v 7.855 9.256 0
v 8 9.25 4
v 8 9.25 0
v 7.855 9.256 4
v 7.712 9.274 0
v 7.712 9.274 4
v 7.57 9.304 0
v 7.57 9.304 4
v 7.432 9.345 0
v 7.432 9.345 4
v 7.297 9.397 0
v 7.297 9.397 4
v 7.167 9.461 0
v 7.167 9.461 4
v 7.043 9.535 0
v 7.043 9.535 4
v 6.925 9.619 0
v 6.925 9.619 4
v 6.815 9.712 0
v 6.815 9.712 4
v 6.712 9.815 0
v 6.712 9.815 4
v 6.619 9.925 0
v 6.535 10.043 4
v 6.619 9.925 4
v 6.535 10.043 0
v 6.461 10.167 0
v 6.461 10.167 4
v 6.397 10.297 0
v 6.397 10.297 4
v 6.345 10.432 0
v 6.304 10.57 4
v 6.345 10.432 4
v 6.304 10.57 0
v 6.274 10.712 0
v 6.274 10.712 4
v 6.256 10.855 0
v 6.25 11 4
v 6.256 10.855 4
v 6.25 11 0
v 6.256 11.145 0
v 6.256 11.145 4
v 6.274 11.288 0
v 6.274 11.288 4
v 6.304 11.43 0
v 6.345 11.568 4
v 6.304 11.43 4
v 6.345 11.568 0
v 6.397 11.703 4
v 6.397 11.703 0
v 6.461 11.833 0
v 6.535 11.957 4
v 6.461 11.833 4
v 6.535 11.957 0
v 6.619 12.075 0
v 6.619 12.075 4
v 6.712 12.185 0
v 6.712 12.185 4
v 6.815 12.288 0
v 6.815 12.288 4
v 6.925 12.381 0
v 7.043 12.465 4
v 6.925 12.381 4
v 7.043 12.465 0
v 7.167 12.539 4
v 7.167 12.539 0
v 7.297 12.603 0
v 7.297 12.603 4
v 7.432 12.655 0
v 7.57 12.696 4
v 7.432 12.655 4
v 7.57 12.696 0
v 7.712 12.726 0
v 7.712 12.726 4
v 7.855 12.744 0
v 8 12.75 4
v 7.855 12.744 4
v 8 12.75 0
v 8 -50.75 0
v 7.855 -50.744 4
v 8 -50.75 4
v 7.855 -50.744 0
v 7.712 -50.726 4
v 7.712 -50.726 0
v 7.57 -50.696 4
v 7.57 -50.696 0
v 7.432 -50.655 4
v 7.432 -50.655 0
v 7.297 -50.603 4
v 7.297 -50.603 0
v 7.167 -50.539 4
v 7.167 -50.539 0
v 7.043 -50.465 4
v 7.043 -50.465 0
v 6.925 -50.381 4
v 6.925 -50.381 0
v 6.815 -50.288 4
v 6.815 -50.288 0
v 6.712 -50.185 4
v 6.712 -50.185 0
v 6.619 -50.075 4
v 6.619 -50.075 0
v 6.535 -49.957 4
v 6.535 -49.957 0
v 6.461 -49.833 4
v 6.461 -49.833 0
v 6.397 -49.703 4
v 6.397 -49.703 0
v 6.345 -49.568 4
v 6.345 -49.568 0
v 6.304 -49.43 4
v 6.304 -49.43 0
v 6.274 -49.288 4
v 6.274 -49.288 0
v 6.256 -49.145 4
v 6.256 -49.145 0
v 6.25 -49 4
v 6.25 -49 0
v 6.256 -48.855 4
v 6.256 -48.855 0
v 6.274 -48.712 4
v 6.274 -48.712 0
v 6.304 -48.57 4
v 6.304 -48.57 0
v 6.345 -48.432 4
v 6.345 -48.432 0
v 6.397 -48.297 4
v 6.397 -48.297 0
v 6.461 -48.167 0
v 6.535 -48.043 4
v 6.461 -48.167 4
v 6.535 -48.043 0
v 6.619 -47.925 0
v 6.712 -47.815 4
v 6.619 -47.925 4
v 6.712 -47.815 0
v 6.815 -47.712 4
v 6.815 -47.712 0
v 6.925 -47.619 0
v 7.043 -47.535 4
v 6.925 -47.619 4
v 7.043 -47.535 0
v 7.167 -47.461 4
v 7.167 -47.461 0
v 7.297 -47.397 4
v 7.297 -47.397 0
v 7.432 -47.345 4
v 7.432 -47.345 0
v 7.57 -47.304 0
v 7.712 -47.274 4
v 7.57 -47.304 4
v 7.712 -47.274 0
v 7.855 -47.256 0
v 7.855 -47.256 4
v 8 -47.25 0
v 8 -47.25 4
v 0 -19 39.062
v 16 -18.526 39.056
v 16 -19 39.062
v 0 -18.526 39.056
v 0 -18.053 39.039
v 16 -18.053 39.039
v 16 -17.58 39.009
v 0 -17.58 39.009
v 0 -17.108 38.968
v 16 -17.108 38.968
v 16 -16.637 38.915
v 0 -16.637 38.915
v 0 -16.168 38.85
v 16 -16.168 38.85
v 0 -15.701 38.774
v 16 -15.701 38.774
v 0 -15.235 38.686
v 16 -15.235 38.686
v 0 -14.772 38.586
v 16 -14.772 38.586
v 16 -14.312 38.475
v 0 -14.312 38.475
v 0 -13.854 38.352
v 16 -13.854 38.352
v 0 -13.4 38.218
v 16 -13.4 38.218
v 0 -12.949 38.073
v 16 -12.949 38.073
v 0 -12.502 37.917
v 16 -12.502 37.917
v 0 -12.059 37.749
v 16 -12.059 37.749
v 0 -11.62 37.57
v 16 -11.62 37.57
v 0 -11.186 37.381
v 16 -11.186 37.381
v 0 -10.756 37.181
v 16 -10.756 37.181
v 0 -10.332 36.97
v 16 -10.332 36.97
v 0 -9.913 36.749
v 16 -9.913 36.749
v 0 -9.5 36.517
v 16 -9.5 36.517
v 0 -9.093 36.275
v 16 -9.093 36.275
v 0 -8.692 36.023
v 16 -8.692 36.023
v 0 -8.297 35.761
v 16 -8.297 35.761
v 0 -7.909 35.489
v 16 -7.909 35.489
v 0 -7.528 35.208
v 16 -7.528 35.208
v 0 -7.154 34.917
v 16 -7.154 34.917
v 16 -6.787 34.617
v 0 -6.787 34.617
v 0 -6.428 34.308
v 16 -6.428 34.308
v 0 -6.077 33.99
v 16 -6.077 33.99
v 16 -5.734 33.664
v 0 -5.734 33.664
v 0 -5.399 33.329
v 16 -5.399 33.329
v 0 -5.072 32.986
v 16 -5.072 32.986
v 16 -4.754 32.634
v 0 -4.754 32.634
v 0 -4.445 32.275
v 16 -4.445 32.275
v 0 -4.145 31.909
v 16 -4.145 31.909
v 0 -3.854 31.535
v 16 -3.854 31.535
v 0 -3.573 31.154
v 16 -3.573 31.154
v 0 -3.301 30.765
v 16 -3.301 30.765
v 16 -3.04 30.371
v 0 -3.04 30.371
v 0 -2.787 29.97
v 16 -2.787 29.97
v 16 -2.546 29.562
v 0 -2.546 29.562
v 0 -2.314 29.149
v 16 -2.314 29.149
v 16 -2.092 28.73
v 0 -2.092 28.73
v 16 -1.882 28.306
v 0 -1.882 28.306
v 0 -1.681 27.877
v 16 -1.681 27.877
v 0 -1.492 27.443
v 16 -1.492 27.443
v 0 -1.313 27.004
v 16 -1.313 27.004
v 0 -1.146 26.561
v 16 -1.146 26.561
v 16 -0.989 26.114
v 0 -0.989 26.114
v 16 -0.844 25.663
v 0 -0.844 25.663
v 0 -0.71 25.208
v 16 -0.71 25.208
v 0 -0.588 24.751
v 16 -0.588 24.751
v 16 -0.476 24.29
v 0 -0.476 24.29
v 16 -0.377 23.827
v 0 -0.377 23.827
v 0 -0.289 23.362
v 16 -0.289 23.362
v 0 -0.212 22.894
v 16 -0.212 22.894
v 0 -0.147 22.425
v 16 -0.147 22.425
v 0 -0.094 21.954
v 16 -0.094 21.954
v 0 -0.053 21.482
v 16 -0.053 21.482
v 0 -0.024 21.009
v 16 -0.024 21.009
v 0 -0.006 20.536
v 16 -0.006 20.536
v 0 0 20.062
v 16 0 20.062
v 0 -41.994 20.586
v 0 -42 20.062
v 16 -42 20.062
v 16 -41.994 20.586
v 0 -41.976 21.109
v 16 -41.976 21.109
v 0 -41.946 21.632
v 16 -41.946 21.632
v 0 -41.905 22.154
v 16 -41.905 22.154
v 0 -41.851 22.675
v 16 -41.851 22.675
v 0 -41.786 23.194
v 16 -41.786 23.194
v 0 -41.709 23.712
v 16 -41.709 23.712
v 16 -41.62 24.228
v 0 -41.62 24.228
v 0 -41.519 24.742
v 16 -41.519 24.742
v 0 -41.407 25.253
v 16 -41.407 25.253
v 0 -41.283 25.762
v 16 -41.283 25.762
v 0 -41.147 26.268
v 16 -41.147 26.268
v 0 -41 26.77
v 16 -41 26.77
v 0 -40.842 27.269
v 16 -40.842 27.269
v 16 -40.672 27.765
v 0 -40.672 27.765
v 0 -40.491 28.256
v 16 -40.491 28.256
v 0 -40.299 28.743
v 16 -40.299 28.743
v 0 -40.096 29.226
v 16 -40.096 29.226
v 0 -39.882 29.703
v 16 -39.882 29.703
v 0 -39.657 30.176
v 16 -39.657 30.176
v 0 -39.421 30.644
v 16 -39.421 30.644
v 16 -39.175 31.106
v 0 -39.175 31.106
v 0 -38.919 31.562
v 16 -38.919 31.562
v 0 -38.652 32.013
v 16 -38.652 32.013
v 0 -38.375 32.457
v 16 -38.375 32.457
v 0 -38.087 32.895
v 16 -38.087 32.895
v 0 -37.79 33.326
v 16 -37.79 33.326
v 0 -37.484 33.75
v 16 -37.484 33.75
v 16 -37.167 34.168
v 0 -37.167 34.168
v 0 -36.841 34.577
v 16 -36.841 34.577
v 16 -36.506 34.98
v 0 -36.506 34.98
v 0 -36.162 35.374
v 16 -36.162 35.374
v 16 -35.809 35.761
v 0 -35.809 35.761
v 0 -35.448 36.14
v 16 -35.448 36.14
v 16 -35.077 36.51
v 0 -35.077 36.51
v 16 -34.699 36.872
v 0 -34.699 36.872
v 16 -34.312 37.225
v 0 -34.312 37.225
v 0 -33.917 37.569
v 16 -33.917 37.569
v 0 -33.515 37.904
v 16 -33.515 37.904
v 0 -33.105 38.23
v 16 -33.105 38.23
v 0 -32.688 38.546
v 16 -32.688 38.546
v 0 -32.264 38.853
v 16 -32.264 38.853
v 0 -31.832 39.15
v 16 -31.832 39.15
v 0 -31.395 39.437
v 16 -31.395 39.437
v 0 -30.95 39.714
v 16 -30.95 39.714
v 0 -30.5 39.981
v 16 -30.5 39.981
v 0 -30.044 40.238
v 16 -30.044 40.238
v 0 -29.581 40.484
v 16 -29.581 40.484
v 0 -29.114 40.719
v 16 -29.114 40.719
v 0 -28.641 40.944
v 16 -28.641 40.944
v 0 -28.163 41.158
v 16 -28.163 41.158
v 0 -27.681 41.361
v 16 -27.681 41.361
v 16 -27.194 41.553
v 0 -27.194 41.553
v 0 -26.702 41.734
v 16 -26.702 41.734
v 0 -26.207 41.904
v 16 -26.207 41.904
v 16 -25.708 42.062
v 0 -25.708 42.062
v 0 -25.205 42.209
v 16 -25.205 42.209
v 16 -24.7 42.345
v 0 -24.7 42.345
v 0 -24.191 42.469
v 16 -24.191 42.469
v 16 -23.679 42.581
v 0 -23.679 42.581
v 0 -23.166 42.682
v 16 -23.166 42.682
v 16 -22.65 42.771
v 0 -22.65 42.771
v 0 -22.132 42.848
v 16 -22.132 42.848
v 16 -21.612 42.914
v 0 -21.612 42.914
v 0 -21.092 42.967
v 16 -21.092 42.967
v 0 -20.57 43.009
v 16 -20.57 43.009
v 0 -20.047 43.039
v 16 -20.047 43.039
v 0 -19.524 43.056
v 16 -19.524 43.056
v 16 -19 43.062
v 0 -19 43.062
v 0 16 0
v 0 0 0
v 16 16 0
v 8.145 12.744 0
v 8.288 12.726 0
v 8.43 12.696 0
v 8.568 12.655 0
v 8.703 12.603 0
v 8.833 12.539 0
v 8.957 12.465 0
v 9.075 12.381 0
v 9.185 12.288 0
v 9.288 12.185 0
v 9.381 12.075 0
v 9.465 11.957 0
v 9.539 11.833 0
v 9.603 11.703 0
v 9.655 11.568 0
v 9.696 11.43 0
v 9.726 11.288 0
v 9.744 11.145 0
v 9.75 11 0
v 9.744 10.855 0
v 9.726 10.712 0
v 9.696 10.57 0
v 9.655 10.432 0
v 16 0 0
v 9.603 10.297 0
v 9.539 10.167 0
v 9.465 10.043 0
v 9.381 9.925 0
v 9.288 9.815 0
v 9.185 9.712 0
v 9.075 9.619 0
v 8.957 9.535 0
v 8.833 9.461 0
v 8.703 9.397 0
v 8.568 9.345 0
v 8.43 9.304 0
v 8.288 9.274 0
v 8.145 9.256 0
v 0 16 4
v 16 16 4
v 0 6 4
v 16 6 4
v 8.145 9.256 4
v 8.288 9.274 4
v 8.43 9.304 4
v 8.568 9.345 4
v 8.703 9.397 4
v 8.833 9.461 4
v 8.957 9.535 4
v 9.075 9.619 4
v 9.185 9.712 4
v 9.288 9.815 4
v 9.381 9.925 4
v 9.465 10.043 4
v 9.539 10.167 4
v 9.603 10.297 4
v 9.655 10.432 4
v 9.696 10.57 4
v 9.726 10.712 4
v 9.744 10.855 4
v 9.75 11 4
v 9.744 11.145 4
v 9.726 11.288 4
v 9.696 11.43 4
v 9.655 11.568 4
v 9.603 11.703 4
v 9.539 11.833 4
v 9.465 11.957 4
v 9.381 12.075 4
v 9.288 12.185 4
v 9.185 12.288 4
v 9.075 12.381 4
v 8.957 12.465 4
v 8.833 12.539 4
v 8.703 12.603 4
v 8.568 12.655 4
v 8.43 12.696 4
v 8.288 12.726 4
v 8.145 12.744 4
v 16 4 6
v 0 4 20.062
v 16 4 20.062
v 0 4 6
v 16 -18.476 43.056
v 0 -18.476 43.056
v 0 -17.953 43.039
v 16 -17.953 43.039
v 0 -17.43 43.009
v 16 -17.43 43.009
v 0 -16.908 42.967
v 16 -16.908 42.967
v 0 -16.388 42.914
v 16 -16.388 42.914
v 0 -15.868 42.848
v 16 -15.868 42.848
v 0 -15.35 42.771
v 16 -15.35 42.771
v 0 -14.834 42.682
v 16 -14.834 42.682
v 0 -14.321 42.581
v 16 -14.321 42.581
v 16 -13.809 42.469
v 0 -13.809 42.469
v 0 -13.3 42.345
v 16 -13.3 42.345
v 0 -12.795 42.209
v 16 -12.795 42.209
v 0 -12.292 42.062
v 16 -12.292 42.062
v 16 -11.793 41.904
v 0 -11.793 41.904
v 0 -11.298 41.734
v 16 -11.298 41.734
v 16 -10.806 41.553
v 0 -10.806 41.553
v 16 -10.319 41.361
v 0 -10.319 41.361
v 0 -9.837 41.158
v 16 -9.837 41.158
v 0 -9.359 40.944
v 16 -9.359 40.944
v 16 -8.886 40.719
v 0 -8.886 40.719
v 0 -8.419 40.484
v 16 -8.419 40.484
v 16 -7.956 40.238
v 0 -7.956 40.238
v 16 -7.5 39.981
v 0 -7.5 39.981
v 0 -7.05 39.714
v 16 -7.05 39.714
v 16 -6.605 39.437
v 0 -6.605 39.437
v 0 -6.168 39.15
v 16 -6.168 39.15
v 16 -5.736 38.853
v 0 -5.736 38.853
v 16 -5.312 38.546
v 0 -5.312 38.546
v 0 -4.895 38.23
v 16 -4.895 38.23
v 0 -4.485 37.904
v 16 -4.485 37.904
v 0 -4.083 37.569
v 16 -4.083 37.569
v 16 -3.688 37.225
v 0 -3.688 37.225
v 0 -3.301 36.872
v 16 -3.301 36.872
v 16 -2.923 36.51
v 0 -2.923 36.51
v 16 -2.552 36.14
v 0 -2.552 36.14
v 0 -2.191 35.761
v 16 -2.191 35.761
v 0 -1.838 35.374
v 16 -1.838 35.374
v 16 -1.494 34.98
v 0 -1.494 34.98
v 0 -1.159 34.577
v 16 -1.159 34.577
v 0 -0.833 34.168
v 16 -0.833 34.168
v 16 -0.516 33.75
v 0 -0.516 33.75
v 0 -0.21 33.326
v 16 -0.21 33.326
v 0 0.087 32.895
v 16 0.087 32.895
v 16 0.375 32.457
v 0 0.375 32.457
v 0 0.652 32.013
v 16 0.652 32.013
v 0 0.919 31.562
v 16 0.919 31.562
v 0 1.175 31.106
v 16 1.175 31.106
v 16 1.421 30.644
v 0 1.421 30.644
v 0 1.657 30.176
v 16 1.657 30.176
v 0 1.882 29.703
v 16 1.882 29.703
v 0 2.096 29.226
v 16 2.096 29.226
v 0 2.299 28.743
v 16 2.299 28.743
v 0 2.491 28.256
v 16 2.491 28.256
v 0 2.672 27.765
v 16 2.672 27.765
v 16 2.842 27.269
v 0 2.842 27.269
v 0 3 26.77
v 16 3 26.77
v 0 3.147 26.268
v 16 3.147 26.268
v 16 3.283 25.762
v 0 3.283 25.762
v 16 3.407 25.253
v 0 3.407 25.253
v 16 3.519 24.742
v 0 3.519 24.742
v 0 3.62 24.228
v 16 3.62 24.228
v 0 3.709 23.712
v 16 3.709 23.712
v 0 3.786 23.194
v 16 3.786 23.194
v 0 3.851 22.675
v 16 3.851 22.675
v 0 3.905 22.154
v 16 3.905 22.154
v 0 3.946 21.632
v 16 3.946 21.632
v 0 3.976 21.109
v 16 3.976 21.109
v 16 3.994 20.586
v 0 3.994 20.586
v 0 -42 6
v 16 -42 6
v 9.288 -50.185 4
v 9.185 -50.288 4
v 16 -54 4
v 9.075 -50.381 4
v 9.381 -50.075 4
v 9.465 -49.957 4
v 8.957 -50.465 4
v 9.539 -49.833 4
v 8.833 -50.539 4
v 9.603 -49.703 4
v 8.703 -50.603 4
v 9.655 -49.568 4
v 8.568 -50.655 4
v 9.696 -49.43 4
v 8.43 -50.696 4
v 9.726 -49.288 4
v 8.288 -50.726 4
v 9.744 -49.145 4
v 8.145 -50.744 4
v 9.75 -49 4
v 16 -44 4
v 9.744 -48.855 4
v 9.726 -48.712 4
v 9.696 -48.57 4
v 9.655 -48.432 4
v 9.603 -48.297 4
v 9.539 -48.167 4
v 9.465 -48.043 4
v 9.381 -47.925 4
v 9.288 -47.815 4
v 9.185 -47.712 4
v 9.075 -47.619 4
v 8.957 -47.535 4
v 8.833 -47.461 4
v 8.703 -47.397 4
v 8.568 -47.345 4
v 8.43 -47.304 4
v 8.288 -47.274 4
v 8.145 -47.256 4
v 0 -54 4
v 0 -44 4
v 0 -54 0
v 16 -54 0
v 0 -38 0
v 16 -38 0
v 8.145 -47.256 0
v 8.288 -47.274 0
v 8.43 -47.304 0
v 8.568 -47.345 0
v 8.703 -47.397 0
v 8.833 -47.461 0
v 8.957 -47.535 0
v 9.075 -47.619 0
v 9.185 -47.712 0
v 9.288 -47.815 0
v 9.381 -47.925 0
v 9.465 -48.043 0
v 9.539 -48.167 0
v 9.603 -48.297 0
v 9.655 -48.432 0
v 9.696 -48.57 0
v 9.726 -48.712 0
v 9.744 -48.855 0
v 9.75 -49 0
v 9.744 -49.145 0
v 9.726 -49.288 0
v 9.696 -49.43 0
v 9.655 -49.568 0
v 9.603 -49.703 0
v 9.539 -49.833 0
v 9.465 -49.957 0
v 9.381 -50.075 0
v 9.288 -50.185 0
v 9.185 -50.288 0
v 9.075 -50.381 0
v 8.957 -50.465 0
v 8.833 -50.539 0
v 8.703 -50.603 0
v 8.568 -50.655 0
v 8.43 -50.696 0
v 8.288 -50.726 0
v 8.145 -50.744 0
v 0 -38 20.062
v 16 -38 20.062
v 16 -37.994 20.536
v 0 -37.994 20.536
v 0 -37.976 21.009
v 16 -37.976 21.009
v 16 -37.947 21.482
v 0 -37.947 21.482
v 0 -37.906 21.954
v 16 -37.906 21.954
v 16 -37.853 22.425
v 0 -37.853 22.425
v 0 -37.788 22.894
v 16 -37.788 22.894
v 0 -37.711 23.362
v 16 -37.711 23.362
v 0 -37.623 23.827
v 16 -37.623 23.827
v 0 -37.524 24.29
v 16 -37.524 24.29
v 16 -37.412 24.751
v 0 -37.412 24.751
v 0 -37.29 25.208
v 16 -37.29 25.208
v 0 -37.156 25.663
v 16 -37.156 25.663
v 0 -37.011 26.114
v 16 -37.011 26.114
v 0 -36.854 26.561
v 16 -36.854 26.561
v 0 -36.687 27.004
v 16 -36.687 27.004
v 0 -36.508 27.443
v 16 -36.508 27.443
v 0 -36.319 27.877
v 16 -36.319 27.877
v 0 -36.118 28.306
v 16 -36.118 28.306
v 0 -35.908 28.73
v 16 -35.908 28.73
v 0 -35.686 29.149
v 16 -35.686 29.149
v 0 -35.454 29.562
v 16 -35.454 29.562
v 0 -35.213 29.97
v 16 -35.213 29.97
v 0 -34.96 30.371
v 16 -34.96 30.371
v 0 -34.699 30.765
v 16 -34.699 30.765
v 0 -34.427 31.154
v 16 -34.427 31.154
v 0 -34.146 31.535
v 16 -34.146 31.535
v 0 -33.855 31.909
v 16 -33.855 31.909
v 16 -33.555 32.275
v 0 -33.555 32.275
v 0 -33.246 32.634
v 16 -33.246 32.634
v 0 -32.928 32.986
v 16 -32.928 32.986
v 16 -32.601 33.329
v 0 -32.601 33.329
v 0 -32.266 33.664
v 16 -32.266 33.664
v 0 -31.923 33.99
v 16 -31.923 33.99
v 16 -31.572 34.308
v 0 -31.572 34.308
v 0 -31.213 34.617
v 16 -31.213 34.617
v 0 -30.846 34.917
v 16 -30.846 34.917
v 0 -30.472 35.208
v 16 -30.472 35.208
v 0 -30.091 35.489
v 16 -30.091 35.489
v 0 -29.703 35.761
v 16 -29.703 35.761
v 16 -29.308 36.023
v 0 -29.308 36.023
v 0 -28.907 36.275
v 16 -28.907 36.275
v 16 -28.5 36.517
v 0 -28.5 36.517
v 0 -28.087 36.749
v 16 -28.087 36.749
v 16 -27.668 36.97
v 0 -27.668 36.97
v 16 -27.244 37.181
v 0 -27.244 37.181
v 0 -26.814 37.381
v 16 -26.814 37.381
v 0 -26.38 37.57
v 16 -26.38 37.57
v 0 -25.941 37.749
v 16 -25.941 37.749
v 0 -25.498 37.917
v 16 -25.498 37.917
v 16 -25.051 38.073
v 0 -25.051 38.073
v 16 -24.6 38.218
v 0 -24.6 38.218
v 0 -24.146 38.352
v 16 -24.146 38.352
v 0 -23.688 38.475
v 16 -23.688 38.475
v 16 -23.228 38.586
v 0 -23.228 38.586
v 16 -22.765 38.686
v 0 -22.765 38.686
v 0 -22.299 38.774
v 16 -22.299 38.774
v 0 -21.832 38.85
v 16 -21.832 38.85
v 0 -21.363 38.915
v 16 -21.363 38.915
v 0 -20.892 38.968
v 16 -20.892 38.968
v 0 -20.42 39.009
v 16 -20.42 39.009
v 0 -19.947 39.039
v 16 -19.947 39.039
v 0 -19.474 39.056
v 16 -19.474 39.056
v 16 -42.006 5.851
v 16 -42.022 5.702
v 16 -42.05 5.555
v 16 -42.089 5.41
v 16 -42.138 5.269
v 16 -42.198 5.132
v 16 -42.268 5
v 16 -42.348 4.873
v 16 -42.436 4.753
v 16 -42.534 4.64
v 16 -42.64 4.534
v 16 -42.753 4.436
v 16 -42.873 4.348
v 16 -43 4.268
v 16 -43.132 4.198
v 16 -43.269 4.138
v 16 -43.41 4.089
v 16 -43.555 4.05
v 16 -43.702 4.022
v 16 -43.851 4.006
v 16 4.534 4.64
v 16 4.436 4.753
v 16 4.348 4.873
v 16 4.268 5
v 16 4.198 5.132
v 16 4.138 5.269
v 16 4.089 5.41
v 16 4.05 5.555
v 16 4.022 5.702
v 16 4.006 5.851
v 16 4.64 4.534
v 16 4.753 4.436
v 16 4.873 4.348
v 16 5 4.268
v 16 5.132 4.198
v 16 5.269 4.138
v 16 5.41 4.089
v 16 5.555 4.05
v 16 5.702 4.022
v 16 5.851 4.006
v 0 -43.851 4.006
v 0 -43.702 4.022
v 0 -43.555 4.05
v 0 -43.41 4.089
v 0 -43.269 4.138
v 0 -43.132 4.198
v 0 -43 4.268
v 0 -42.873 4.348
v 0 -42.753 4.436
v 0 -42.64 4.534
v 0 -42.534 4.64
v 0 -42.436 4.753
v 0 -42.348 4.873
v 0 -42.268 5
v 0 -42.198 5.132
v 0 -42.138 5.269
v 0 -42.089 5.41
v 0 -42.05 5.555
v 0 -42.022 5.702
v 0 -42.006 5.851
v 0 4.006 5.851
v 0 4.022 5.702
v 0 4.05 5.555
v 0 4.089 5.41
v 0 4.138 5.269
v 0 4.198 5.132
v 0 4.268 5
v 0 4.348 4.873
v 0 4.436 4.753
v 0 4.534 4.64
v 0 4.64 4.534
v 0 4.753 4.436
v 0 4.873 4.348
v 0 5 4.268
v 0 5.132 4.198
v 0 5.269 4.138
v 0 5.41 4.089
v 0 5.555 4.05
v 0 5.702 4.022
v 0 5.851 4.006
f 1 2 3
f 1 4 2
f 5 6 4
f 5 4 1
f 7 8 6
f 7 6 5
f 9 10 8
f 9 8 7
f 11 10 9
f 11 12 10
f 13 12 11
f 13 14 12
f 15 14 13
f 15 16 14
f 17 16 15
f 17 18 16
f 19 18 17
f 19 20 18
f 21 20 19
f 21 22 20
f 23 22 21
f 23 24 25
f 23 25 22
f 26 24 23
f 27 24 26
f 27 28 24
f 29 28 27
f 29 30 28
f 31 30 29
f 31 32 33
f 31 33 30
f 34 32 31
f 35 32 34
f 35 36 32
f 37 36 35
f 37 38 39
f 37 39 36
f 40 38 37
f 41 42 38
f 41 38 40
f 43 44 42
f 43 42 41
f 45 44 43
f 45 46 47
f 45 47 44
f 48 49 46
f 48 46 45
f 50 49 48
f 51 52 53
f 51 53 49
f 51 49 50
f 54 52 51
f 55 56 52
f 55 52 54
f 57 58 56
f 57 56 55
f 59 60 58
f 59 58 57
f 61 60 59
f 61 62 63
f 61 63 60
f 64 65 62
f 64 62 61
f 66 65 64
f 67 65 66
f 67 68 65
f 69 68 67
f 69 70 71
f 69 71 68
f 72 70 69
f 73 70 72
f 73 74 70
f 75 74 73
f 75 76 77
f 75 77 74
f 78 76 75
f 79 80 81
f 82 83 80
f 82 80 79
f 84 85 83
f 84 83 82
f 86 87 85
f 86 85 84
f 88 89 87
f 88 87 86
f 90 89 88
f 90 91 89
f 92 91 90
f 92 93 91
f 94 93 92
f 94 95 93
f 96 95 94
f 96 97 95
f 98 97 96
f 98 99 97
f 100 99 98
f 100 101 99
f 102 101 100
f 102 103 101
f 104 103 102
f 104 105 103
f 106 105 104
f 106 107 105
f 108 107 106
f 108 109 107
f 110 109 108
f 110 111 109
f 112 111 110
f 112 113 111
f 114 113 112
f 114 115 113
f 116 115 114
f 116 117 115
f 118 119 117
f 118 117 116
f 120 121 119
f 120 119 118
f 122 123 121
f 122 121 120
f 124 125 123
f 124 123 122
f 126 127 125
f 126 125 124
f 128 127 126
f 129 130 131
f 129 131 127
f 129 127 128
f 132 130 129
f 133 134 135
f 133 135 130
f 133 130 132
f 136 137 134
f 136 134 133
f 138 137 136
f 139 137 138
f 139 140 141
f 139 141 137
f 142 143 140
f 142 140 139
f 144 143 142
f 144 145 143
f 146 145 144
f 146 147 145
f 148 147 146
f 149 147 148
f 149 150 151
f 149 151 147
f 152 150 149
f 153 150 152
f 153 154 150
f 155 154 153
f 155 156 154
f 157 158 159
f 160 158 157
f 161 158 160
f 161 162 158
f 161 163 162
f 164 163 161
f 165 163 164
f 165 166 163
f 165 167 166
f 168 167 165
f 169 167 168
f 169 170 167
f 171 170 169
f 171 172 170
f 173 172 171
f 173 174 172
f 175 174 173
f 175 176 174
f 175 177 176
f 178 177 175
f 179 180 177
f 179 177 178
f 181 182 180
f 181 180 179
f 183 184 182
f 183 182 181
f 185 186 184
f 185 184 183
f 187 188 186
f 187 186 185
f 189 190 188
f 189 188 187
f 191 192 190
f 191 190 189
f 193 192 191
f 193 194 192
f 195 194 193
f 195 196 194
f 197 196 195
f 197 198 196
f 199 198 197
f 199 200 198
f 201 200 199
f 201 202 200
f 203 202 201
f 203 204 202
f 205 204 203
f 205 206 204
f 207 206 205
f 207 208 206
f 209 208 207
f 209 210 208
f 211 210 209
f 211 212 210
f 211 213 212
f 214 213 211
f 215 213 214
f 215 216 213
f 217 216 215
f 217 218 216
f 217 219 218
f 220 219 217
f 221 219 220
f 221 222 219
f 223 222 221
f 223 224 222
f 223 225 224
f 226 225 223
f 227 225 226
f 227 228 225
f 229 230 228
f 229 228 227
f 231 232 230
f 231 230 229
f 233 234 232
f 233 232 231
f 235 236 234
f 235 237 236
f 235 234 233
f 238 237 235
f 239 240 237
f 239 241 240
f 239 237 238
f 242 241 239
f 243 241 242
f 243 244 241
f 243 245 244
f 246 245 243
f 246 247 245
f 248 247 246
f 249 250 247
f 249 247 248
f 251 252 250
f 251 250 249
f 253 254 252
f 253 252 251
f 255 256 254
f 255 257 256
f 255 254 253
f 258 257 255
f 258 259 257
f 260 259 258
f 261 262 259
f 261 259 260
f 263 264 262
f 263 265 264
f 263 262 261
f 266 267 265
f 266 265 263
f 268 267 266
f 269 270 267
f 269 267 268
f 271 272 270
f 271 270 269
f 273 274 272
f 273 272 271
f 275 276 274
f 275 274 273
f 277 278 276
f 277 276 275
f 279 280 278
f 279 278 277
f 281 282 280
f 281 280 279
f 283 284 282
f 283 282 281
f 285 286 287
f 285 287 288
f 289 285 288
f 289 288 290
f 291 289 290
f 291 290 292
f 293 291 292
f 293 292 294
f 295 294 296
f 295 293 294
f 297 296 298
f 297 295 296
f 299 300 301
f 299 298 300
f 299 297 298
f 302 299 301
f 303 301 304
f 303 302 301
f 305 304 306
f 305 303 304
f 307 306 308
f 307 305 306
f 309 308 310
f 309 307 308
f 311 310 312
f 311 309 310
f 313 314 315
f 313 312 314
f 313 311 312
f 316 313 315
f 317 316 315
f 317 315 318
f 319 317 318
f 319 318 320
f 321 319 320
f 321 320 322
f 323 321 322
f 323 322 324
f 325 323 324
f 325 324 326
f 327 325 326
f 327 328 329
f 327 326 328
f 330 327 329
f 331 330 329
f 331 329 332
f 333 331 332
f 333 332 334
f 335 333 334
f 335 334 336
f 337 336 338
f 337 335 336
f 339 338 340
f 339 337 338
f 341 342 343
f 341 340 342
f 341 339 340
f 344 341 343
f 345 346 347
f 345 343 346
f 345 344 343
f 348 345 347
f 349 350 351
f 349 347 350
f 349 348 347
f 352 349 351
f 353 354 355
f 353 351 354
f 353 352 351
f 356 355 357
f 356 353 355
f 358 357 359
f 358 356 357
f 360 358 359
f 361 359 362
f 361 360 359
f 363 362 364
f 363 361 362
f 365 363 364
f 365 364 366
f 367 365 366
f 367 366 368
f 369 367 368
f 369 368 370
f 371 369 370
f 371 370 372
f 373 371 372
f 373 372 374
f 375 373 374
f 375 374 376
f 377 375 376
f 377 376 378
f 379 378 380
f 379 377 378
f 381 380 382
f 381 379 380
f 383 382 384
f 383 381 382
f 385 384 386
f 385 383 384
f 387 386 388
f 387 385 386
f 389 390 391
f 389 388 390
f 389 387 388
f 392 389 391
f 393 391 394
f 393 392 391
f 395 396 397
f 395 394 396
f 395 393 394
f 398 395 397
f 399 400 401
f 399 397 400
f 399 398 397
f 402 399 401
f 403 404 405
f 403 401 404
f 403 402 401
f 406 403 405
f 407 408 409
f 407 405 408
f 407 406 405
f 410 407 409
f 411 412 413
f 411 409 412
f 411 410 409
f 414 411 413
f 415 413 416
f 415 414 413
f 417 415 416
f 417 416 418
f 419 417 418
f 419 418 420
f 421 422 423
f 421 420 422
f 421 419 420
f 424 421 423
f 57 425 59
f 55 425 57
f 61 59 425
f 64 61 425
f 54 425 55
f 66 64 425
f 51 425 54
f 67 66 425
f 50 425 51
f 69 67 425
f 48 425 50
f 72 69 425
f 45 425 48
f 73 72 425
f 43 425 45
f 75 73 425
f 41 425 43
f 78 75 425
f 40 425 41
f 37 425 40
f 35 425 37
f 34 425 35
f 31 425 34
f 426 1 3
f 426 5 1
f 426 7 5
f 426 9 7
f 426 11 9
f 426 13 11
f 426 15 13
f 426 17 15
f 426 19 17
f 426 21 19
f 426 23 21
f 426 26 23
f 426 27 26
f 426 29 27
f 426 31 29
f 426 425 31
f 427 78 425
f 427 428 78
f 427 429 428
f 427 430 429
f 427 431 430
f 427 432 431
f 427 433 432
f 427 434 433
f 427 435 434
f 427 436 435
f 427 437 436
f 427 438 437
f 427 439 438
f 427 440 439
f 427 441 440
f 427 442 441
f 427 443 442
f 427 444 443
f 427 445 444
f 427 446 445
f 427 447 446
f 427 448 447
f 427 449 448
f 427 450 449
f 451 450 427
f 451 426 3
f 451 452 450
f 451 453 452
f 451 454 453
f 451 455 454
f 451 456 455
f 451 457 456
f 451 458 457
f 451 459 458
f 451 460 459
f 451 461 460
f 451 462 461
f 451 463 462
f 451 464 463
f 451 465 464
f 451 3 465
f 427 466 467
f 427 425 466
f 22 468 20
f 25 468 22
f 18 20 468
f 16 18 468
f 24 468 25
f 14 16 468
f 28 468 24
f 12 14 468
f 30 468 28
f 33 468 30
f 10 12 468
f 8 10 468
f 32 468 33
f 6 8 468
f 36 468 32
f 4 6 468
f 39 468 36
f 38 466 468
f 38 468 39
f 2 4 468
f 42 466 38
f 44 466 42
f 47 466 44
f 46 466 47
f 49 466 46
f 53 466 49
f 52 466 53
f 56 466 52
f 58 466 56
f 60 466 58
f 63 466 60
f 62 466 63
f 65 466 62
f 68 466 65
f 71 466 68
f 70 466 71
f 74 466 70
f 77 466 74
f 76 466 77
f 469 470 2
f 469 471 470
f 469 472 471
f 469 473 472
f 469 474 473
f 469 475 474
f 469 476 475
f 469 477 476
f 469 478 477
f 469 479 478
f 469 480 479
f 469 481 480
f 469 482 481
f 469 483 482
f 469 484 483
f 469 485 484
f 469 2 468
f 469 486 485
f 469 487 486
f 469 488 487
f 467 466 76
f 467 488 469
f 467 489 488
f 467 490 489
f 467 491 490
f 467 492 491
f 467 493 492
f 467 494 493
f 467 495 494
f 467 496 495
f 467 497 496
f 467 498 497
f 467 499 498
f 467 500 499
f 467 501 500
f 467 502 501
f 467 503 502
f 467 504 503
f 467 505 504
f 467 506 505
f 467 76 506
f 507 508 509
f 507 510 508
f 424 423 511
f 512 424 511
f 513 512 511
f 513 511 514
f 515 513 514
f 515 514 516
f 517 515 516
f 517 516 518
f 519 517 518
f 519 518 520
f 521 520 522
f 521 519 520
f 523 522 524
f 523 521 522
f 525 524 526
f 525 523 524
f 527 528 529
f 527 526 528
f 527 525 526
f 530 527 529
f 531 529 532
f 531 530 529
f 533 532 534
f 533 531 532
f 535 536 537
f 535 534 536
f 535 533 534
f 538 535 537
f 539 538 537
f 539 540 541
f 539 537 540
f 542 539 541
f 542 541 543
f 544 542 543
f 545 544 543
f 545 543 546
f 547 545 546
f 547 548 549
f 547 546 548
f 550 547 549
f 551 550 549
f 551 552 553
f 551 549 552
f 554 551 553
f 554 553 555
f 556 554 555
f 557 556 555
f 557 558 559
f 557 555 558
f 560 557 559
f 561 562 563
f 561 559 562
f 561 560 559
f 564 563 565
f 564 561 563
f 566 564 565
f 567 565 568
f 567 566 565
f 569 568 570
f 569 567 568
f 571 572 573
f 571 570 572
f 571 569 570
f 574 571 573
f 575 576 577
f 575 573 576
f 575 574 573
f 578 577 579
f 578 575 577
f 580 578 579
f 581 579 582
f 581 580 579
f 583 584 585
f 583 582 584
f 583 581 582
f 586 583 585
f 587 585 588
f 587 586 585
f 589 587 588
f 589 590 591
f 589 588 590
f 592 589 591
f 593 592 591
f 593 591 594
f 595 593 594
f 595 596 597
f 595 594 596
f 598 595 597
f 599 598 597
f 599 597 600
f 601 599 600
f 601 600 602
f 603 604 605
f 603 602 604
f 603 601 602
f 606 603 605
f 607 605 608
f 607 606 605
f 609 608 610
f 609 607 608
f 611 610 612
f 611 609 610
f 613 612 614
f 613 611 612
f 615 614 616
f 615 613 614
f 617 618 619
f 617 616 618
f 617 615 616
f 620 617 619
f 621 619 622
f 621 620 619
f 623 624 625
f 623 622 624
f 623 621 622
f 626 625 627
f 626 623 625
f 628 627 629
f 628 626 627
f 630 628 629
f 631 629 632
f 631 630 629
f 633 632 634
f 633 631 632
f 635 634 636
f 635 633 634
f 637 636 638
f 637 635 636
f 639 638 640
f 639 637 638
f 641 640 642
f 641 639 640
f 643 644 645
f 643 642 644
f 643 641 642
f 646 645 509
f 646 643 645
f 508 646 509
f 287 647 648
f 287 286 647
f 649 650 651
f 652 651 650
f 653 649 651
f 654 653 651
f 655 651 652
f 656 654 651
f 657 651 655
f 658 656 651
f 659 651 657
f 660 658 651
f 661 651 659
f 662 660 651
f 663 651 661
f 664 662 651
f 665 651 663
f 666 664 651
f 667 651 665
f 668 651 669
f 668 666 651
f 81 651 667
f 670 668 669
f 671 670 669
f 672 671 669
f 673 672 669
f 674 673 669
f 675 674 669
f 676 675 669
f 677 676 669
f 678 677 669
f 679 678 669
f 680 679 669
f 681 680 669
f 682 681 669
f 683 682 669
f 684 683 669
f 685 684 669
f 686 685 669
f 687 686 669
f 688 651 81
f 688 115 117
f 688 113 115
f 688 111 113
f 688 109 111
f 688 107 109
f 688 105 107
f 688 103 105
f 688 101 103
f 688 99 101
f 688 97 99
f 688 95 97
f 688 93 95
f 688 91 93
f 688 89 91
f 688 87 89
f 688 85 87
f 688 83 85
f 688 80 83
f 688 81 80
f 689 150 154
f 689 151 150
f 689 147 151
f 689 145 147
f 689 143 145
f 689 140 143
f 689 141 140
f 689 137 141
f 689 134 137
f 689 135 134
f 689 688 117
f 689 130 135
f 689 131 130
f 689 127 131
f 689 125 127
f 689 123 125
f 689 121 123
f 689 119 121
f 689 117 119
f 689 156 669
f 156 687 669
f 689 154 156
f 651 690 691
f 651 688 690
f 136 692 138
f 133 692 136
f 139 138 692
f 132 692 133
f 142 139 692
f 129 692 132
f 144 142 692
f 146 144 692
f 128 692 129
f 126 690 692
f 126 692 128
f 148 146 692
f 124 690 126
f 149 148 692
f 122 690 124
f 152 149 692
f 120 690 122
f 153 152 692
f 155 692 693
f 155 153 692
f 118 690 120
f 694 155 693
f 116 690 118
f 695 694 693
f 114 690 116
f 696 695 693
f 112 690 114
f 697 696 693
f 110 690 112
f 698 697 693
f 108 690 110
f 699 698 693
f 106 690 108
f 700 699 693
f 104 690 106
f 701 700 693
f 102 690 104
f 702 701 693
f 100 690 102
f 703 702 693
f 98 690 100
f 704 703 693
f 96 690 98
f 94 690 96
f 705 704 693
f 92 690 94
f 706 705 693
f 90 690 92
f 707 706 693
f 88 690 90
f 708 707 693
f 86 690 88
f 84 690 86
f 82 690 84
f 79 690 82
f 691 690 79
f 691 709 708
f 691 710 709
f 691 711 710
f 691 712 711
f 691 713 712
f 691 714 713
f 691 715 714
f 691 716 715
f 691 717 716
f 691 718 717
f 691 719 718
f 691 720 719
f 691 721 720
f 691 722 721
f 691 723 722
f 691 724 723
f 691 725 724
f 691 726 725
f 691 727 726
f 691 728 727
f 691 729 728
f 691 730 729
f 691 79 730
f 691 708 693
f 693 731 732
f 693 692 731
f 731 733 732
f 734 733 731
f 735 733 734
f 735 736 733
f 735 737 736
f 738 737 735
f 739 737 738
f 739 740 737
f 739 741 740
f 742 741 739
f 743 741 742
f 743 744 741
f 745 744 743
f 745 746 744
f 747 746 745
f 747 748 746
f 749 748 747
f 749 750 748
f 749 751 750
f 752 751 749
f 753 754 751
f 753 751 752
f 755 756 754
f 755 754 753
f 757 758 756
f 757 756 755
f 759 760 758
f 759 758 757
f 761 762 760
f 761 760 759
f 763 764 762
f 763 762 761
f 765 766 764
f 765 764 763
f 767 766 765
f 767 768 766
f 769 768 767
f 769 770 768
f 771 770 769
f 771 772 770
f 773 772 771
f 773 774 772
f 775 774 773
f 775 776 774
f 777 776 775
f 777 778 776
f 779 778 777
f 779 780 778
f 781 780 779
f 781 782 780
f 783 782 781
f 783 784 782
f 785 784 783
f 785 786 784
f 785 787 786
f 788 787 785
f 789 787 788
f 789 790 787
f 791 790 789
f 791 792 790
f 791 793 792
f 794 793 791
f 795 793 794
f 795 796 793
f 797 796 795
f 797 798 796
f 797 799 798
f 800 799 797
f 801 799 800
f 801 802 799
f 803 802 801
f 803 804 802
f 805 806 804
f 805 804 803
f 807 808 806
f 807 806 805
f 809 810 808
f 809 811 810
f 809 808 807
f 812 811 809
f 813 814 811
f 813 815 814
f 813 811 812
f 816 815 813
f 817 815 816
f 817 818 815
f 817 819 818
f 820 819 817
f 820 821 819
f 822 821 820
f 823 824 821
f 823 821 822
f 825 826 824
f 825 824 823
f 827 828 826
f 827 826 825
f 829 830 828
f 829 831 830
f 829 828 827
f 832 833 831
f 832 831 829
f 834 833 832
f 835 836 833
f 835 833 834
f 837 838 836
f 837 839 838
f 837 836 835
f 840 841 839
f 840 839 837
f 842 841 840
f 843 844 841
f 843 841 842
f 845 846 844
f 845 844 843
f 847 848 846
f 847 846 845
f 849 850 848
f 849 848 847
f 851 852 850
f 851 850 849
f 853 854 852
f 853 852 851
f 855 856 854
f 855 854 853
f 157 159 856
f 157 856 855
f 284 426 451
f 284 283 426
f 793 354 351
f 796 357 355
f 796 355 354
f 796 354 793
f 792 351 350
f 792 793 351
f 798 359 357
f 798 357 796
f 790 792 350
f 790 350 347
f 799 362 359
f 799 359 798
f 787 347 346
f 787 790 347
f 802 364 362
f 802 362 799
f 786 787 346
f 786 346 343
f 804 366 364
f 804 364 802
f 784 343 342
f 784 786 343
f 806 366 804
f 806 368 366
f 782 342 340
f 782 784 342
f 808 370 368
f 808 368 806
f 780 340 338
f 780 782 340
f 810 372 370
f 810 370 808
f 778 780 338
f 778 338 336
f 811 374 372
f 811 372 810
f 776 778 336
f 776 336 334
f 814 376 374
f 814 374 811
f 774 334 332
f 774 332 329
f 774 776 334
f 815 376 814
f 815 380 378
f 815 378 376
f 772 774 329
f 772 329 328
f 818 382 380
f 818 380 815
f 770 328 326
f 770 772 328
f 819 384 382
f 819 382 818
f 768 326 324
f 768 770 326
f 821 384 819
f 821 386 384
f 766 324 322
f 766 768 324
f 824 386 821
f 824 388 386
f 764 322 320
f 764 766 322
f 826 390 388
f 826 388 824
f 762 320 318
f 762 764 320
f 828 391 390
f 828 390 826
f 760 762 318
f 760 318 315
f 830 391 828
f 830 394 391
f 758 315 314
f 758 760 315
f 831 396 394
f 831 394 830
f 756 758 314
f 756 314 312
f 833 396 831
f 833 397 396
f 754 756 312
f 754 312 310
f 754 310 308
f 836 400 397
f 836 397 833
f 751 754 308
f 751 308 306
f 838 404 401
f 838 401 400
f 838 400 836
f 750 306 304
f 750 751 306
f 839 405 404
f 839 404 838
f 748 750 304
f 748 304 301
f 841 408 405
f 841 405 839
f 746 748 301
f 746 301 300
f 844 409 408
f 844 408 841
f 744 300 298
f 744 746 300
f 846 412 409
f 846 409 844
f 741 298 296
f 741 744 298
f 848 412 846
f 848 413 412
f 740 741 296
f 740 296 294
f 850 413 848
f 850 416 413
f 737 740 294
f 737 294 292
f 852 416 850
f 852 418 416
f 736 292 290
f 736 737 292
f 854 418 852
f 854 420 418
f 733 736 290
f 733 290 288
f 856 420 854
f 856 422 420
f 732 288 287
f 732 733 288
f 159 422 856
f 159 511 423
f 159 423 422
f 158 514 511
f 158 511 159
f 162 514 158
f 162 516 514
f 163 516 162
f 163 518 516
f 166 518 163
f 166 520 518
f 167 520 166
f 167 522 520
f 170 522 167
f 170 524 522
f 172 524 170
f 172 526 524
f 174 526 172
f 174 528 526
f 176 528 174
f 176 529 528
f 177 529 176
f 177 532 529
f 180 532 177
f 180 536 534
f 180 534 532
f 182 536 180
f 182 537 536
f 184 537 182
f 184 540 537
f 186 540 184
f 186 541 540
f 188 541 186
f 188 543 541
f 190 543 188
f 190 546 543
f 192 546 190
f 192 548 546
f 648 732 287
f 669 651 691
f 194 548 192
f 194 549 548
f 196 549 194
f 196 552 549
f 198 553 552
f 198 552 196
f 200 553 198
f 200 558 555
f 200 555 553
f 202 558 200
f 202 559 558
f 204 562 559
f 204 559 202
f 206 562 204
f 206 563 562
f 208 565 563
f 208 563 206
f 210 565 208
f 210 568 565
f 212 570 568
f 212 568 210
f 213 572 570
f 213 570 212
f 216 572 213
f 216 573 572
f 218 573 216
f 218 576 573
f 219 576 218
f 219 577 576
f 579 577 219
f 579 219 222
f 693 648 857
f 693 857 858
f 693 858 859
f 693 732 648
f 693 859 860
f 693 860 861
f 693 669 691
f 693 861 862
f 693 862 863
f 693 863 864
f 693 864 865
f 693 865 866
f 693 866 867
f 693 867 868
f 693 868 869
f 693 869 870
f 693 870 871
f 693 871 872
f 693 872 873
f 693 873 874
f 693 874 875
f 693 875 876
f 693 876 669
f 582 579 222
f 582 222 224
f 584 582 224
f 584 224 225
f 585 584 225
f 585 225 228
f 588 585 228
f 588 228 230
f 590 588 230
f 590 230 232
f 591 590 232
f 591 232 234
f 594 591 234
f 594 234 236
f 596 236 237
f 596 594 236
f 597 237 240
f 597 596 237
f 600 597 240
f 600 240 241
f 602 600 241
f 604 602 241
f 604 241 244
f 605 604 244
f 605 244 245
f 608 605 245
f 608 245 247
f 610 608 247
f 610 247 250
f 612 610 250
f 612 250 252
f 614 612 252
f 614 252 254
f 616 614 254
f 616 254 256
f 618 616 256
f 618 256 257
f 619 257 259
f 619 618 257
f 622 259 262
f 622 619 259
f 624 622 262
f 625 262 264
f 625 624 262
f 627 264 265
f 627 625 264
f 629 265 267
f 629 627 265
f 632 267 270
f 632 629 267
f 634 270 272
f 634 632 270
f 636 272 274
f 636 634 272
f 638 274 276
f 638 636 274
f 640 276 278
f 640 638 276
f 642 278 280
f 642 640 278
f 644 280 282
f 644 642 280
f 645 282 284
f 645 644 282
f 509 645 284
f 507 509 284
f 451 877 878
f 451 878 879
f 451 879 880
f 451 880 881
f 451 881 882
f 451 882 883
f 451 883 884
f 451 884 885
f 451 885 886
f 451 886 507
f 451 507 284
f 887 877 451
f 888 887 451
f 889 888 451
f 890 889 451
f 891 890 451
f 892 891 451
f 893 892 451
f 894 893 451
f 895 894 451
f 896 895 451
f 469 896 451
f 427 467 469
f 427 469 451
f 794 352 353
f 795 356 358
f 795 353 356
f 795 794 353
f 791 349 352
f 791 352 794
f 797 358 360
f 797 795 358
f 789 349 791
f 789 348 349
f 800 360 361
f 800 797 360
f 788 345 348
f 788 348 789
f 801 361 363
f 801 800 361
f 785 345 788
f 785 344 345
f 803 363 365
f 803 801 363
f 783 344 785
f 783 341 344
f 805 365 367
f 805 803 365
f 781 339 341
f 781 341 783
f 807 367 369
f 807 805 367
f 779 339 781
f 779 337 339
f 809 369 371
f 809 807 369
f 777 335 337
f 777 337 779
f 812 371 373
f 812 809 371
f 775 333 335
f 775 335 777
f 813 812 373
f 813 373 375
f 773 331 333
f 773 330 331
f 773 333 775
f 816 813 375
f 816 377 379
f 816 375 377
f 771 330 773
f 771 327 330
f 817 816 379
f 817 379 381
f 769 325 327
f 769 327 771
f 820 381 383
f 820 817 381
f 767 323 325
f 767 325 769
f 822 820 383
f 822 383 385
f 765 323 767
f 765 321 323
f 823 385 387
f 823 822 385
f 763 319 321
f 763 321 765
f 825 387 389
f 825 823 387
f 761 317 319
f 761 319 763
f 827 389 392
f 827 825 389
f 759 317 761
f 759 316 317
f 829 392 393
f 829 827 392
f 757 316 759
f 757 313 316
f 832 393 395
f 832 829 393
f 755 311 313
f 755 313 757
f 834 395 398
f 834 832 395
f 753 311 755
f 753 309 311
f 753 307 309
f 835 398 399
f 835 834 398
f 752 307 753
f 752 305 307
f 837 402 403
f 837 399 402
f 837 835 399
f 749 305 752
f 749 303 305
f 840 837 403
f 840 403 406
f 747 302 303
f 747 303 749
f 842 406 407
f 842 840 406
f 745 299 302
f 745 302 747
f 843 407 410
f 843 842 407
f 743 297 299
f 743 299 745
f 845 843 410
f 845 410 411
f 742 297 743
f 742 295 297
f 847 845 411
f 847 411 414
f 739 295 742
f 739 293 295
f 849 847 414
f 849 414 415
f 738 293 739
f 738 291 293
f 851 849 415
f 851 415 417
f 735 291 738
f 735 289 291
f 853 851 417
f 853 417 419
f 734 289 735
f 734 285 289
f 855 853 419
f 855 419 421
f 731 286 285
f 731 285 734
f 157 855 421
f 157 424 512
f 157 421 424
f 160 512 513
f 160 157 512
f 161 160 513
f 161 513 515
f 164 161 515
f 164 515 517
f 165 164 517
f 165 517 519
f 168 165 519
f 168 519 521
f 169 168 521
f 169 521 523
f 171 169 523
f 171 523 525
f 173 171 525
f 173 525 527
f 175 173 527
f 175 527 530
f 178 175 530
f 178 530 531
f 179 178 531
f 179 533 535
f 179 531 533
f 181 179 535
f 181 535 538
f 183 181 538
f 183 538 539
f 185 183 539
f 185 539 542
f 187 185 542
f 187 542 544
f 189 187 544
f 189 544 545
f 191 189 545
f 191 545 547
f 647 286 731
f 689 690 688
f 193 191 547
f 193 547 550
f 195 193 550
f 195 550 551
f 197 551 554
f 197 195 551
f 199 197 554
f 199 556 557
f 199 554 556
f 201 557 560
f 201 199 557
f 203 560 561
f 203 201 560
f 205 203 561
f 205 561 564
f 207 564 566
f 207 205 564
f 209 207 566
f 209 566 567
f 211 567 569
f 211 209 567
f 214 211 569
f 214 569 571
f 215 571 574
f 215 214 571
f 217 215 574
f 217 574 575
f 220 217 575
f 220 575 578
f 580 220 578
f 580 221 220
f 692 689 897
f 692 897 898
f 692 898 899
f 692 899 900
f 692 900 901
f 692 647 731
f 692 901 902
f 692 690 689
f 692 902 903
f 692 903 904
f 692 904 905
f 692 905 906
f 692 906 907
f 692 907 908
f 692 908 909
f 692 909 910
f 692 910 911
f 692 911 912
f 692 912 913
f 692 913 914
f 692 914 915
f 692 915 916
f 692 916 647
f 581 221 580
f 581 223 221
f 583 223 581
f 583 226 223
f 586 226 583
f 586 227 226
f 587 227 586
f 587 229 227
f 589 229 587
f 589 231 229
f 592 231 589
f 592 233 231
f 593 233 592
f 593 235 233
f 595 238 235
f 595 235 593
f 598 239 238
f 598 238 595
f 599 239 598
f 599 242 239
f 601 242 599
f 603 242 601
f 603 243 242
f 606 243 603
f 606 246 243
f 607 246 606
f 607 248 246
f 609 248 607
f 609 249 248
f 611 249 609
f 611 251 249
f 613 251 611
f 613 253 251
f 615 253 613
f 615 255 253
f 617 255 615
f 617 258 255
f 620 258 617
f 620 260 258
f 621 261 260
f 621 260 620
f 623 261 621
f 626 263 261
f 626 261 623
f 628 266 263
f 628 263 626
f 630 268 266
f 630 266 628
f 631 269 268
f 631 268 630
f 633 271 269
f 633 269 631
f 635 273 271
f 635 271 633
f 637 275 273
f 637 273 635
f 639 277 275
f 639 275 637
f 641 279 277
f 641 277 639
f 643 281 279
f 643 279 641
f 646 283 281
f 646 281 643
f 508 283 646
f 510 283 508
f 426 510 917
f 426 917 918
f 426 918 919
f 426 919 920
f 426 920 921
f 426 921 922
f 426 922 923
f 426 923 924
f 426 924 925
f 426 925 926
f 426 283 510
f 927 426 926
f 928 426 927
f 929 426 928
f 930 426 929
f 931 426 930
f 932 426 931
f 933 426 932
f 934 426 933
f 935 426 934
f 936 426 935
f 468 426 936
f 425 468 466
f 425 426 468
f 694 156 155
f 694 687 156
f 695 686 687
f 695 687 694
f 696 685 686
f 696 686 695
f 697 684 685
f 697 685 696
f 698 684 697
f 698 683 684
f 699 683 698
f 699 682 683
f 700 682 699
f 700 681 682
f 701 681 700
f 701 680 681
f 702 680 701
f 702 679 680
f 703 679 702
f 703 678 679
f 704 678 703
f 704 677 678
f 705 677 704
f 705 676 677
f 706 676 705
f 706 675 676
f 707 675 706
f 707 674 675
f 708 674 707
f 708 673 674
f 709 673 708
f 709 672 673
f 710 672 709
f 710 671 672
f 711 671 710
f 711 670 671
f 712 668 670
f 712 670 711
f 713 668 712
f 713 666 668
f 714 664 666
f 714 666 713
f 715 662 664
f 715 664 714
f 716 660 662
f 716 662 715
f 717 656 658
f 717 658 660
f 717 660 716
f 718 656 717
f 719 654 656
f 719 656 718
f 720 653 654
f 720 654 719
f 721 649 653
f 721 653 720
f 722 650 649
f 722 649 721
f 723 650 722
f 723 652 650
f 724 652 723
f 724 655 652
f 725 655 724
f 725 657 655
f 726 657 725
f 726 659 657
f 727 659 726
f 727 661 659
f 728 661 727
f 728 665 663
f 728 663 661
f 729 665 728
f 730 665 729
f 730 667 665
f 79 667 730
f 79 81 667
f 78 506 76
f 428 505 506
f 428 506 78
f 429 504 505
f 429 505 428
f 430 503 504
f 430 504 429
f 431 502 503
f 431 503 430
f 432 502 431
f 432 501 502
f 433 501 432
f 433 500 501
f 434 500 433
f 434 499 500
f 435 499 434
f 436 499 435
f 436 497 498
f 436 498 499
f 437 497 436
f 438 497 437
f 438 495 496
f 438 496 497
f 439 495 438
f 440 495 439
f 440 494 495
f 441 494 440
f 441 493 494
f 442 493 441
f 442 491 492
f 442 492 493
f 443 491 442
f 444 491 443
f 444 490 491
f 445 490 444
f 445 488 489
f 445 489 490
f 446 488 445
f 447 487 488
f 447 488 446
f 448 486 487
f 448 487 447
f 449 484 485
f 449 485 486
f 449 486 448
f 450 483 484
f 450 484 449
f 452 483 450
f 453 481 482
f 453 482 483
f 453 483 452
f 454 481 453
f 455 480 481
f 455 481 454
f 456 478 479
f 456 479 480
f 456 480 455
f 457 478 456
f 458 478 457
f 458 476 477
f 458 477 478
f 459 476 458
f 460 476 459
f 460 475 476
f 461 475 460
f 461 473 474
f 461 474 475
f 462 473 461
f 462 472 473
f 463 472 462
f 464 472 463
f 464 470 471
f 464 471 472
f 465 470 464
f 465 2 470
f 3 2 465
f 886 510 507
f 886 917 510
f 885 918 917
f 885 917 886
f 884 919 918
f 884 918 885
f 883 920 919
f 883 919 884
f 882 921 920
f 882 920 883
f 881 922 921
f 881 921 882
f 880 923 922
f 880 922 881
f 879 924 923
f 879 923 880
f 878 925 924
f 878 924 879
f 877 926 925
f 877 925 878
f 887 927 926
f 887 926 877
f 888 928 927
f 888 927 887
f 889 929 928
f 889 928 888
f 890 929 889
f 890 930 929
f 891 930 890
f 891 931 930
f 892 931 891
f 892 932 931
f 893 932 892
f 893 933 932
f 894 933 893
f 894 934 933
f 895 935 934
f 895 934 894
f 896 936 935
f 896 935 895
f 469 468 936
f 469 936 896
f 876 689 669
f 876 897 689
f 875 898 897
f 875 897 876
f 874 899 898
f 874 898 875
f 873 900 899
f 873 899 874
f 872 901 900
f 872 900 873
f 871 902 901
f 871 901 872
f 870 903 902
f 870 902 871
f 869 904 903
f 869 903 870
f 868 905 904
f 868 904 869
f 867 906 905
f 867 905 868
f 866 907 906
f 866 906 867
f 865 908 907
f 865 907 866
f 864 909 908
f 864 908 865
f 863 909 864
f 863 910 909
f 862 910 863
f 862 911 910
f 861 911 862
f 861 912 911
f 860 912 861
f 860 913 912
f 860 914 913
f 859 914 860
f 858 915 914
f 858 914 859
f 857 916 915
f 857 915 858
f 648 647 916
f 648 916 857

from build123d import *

# Parameters (mm, degrees)
BOSS_EXTRUDE1_DEPTH = 16
CUT_EXTRUDE1_REACH  = 72.897
SKETCH3_R           = 1.75
FILLET1_R           = 2


with BuildPart() as part:
    # Sketch2 → Boss-Extrude1 (new body)
    with BuildSketch(Plane.YZ):
        with BuildLine():
            Line((0, 0), (0, 20.06238879))
            ThreePointArc((0, 20.06238879), (-19, 39.06238879), (-38, 20.06238879))
            Line((-38, 20.06238879), (-38, 0))
            Line((-38, 0), (-54, 0))
            Line((-54, 0), (-54, 4))
            Line((-54, 4), (-42, 4))
            Line((-42, 4), (-42, 20.06238879))
            ThreePointArc((-42, 20.06238879), (-19, 43.06238879), (4, 20.06238879))
            Line((4, 20.06238879), (4, 4))
            Line((4, 4), (16, 4))
            Line((16, 4), (16, 0))
            Line((16, 0), (0, 0))
        make_face()
    extrude(amount=BOSS_EXTRUDE1_DEPTH)

    # Sketch3 → Cut-Extrude1 (cut, up to next)
    with BuildSketch(Plane(origin=(0, 0, 0), x_dir=(1, 0, 0), z_dir=(0, 0, -1)), mode=Mode.PRIVATE) as cut_extrude1_sk1:
        with Locations(Location((8, 49, 0), (0, 0, 270))):
            Circle(SKETCH3_R)
    cut_extrude1_tool1 = extrude(cut_extrude1_sk1.sketch, amount=-CUT_EXTRUDE1_REACH, mode=Mode.PRIVATE) & part.part
    # Sketch3 → Cut-Extrude1 (cut, up to next)
    with BuildSketch(Plane(origin=(0, 0, 0), x_dir=(1, 0, 0), z_dir=(0, 0, -1)), mode=Mode.PRIVATE) as cut_extrude1_sk2:
        with Locations(Location((8, -11, 0), (0, 0, 270))):
            Circle(SKETCH3_R)
    cut_extrude1_tool2 = extrude(cut_extrude1_sk2.sketch, amount=-CUT_EXTRUDE1_REACH, mode=Mode.PRIVATE) & part.part
    add(cut_extrude1_tool1.solids().sort_by_distance((8, -49, 0))[0], mode=Mode.SUBTRACT)
    add(cut_extrude1_tool2.solids().sort_by_distance((8, 11, 0))[0], mode=Mode.SUBTRACT)

    # Fillet1
    fillet1_edges = [part.edges().sort_by_distance(p)[0] for p in [
        (8, -42, 4),
        (8, 4, 4),
    ]]
    fillet(fillet1_edges, radius=FILLET1_R)


solid = part.part
